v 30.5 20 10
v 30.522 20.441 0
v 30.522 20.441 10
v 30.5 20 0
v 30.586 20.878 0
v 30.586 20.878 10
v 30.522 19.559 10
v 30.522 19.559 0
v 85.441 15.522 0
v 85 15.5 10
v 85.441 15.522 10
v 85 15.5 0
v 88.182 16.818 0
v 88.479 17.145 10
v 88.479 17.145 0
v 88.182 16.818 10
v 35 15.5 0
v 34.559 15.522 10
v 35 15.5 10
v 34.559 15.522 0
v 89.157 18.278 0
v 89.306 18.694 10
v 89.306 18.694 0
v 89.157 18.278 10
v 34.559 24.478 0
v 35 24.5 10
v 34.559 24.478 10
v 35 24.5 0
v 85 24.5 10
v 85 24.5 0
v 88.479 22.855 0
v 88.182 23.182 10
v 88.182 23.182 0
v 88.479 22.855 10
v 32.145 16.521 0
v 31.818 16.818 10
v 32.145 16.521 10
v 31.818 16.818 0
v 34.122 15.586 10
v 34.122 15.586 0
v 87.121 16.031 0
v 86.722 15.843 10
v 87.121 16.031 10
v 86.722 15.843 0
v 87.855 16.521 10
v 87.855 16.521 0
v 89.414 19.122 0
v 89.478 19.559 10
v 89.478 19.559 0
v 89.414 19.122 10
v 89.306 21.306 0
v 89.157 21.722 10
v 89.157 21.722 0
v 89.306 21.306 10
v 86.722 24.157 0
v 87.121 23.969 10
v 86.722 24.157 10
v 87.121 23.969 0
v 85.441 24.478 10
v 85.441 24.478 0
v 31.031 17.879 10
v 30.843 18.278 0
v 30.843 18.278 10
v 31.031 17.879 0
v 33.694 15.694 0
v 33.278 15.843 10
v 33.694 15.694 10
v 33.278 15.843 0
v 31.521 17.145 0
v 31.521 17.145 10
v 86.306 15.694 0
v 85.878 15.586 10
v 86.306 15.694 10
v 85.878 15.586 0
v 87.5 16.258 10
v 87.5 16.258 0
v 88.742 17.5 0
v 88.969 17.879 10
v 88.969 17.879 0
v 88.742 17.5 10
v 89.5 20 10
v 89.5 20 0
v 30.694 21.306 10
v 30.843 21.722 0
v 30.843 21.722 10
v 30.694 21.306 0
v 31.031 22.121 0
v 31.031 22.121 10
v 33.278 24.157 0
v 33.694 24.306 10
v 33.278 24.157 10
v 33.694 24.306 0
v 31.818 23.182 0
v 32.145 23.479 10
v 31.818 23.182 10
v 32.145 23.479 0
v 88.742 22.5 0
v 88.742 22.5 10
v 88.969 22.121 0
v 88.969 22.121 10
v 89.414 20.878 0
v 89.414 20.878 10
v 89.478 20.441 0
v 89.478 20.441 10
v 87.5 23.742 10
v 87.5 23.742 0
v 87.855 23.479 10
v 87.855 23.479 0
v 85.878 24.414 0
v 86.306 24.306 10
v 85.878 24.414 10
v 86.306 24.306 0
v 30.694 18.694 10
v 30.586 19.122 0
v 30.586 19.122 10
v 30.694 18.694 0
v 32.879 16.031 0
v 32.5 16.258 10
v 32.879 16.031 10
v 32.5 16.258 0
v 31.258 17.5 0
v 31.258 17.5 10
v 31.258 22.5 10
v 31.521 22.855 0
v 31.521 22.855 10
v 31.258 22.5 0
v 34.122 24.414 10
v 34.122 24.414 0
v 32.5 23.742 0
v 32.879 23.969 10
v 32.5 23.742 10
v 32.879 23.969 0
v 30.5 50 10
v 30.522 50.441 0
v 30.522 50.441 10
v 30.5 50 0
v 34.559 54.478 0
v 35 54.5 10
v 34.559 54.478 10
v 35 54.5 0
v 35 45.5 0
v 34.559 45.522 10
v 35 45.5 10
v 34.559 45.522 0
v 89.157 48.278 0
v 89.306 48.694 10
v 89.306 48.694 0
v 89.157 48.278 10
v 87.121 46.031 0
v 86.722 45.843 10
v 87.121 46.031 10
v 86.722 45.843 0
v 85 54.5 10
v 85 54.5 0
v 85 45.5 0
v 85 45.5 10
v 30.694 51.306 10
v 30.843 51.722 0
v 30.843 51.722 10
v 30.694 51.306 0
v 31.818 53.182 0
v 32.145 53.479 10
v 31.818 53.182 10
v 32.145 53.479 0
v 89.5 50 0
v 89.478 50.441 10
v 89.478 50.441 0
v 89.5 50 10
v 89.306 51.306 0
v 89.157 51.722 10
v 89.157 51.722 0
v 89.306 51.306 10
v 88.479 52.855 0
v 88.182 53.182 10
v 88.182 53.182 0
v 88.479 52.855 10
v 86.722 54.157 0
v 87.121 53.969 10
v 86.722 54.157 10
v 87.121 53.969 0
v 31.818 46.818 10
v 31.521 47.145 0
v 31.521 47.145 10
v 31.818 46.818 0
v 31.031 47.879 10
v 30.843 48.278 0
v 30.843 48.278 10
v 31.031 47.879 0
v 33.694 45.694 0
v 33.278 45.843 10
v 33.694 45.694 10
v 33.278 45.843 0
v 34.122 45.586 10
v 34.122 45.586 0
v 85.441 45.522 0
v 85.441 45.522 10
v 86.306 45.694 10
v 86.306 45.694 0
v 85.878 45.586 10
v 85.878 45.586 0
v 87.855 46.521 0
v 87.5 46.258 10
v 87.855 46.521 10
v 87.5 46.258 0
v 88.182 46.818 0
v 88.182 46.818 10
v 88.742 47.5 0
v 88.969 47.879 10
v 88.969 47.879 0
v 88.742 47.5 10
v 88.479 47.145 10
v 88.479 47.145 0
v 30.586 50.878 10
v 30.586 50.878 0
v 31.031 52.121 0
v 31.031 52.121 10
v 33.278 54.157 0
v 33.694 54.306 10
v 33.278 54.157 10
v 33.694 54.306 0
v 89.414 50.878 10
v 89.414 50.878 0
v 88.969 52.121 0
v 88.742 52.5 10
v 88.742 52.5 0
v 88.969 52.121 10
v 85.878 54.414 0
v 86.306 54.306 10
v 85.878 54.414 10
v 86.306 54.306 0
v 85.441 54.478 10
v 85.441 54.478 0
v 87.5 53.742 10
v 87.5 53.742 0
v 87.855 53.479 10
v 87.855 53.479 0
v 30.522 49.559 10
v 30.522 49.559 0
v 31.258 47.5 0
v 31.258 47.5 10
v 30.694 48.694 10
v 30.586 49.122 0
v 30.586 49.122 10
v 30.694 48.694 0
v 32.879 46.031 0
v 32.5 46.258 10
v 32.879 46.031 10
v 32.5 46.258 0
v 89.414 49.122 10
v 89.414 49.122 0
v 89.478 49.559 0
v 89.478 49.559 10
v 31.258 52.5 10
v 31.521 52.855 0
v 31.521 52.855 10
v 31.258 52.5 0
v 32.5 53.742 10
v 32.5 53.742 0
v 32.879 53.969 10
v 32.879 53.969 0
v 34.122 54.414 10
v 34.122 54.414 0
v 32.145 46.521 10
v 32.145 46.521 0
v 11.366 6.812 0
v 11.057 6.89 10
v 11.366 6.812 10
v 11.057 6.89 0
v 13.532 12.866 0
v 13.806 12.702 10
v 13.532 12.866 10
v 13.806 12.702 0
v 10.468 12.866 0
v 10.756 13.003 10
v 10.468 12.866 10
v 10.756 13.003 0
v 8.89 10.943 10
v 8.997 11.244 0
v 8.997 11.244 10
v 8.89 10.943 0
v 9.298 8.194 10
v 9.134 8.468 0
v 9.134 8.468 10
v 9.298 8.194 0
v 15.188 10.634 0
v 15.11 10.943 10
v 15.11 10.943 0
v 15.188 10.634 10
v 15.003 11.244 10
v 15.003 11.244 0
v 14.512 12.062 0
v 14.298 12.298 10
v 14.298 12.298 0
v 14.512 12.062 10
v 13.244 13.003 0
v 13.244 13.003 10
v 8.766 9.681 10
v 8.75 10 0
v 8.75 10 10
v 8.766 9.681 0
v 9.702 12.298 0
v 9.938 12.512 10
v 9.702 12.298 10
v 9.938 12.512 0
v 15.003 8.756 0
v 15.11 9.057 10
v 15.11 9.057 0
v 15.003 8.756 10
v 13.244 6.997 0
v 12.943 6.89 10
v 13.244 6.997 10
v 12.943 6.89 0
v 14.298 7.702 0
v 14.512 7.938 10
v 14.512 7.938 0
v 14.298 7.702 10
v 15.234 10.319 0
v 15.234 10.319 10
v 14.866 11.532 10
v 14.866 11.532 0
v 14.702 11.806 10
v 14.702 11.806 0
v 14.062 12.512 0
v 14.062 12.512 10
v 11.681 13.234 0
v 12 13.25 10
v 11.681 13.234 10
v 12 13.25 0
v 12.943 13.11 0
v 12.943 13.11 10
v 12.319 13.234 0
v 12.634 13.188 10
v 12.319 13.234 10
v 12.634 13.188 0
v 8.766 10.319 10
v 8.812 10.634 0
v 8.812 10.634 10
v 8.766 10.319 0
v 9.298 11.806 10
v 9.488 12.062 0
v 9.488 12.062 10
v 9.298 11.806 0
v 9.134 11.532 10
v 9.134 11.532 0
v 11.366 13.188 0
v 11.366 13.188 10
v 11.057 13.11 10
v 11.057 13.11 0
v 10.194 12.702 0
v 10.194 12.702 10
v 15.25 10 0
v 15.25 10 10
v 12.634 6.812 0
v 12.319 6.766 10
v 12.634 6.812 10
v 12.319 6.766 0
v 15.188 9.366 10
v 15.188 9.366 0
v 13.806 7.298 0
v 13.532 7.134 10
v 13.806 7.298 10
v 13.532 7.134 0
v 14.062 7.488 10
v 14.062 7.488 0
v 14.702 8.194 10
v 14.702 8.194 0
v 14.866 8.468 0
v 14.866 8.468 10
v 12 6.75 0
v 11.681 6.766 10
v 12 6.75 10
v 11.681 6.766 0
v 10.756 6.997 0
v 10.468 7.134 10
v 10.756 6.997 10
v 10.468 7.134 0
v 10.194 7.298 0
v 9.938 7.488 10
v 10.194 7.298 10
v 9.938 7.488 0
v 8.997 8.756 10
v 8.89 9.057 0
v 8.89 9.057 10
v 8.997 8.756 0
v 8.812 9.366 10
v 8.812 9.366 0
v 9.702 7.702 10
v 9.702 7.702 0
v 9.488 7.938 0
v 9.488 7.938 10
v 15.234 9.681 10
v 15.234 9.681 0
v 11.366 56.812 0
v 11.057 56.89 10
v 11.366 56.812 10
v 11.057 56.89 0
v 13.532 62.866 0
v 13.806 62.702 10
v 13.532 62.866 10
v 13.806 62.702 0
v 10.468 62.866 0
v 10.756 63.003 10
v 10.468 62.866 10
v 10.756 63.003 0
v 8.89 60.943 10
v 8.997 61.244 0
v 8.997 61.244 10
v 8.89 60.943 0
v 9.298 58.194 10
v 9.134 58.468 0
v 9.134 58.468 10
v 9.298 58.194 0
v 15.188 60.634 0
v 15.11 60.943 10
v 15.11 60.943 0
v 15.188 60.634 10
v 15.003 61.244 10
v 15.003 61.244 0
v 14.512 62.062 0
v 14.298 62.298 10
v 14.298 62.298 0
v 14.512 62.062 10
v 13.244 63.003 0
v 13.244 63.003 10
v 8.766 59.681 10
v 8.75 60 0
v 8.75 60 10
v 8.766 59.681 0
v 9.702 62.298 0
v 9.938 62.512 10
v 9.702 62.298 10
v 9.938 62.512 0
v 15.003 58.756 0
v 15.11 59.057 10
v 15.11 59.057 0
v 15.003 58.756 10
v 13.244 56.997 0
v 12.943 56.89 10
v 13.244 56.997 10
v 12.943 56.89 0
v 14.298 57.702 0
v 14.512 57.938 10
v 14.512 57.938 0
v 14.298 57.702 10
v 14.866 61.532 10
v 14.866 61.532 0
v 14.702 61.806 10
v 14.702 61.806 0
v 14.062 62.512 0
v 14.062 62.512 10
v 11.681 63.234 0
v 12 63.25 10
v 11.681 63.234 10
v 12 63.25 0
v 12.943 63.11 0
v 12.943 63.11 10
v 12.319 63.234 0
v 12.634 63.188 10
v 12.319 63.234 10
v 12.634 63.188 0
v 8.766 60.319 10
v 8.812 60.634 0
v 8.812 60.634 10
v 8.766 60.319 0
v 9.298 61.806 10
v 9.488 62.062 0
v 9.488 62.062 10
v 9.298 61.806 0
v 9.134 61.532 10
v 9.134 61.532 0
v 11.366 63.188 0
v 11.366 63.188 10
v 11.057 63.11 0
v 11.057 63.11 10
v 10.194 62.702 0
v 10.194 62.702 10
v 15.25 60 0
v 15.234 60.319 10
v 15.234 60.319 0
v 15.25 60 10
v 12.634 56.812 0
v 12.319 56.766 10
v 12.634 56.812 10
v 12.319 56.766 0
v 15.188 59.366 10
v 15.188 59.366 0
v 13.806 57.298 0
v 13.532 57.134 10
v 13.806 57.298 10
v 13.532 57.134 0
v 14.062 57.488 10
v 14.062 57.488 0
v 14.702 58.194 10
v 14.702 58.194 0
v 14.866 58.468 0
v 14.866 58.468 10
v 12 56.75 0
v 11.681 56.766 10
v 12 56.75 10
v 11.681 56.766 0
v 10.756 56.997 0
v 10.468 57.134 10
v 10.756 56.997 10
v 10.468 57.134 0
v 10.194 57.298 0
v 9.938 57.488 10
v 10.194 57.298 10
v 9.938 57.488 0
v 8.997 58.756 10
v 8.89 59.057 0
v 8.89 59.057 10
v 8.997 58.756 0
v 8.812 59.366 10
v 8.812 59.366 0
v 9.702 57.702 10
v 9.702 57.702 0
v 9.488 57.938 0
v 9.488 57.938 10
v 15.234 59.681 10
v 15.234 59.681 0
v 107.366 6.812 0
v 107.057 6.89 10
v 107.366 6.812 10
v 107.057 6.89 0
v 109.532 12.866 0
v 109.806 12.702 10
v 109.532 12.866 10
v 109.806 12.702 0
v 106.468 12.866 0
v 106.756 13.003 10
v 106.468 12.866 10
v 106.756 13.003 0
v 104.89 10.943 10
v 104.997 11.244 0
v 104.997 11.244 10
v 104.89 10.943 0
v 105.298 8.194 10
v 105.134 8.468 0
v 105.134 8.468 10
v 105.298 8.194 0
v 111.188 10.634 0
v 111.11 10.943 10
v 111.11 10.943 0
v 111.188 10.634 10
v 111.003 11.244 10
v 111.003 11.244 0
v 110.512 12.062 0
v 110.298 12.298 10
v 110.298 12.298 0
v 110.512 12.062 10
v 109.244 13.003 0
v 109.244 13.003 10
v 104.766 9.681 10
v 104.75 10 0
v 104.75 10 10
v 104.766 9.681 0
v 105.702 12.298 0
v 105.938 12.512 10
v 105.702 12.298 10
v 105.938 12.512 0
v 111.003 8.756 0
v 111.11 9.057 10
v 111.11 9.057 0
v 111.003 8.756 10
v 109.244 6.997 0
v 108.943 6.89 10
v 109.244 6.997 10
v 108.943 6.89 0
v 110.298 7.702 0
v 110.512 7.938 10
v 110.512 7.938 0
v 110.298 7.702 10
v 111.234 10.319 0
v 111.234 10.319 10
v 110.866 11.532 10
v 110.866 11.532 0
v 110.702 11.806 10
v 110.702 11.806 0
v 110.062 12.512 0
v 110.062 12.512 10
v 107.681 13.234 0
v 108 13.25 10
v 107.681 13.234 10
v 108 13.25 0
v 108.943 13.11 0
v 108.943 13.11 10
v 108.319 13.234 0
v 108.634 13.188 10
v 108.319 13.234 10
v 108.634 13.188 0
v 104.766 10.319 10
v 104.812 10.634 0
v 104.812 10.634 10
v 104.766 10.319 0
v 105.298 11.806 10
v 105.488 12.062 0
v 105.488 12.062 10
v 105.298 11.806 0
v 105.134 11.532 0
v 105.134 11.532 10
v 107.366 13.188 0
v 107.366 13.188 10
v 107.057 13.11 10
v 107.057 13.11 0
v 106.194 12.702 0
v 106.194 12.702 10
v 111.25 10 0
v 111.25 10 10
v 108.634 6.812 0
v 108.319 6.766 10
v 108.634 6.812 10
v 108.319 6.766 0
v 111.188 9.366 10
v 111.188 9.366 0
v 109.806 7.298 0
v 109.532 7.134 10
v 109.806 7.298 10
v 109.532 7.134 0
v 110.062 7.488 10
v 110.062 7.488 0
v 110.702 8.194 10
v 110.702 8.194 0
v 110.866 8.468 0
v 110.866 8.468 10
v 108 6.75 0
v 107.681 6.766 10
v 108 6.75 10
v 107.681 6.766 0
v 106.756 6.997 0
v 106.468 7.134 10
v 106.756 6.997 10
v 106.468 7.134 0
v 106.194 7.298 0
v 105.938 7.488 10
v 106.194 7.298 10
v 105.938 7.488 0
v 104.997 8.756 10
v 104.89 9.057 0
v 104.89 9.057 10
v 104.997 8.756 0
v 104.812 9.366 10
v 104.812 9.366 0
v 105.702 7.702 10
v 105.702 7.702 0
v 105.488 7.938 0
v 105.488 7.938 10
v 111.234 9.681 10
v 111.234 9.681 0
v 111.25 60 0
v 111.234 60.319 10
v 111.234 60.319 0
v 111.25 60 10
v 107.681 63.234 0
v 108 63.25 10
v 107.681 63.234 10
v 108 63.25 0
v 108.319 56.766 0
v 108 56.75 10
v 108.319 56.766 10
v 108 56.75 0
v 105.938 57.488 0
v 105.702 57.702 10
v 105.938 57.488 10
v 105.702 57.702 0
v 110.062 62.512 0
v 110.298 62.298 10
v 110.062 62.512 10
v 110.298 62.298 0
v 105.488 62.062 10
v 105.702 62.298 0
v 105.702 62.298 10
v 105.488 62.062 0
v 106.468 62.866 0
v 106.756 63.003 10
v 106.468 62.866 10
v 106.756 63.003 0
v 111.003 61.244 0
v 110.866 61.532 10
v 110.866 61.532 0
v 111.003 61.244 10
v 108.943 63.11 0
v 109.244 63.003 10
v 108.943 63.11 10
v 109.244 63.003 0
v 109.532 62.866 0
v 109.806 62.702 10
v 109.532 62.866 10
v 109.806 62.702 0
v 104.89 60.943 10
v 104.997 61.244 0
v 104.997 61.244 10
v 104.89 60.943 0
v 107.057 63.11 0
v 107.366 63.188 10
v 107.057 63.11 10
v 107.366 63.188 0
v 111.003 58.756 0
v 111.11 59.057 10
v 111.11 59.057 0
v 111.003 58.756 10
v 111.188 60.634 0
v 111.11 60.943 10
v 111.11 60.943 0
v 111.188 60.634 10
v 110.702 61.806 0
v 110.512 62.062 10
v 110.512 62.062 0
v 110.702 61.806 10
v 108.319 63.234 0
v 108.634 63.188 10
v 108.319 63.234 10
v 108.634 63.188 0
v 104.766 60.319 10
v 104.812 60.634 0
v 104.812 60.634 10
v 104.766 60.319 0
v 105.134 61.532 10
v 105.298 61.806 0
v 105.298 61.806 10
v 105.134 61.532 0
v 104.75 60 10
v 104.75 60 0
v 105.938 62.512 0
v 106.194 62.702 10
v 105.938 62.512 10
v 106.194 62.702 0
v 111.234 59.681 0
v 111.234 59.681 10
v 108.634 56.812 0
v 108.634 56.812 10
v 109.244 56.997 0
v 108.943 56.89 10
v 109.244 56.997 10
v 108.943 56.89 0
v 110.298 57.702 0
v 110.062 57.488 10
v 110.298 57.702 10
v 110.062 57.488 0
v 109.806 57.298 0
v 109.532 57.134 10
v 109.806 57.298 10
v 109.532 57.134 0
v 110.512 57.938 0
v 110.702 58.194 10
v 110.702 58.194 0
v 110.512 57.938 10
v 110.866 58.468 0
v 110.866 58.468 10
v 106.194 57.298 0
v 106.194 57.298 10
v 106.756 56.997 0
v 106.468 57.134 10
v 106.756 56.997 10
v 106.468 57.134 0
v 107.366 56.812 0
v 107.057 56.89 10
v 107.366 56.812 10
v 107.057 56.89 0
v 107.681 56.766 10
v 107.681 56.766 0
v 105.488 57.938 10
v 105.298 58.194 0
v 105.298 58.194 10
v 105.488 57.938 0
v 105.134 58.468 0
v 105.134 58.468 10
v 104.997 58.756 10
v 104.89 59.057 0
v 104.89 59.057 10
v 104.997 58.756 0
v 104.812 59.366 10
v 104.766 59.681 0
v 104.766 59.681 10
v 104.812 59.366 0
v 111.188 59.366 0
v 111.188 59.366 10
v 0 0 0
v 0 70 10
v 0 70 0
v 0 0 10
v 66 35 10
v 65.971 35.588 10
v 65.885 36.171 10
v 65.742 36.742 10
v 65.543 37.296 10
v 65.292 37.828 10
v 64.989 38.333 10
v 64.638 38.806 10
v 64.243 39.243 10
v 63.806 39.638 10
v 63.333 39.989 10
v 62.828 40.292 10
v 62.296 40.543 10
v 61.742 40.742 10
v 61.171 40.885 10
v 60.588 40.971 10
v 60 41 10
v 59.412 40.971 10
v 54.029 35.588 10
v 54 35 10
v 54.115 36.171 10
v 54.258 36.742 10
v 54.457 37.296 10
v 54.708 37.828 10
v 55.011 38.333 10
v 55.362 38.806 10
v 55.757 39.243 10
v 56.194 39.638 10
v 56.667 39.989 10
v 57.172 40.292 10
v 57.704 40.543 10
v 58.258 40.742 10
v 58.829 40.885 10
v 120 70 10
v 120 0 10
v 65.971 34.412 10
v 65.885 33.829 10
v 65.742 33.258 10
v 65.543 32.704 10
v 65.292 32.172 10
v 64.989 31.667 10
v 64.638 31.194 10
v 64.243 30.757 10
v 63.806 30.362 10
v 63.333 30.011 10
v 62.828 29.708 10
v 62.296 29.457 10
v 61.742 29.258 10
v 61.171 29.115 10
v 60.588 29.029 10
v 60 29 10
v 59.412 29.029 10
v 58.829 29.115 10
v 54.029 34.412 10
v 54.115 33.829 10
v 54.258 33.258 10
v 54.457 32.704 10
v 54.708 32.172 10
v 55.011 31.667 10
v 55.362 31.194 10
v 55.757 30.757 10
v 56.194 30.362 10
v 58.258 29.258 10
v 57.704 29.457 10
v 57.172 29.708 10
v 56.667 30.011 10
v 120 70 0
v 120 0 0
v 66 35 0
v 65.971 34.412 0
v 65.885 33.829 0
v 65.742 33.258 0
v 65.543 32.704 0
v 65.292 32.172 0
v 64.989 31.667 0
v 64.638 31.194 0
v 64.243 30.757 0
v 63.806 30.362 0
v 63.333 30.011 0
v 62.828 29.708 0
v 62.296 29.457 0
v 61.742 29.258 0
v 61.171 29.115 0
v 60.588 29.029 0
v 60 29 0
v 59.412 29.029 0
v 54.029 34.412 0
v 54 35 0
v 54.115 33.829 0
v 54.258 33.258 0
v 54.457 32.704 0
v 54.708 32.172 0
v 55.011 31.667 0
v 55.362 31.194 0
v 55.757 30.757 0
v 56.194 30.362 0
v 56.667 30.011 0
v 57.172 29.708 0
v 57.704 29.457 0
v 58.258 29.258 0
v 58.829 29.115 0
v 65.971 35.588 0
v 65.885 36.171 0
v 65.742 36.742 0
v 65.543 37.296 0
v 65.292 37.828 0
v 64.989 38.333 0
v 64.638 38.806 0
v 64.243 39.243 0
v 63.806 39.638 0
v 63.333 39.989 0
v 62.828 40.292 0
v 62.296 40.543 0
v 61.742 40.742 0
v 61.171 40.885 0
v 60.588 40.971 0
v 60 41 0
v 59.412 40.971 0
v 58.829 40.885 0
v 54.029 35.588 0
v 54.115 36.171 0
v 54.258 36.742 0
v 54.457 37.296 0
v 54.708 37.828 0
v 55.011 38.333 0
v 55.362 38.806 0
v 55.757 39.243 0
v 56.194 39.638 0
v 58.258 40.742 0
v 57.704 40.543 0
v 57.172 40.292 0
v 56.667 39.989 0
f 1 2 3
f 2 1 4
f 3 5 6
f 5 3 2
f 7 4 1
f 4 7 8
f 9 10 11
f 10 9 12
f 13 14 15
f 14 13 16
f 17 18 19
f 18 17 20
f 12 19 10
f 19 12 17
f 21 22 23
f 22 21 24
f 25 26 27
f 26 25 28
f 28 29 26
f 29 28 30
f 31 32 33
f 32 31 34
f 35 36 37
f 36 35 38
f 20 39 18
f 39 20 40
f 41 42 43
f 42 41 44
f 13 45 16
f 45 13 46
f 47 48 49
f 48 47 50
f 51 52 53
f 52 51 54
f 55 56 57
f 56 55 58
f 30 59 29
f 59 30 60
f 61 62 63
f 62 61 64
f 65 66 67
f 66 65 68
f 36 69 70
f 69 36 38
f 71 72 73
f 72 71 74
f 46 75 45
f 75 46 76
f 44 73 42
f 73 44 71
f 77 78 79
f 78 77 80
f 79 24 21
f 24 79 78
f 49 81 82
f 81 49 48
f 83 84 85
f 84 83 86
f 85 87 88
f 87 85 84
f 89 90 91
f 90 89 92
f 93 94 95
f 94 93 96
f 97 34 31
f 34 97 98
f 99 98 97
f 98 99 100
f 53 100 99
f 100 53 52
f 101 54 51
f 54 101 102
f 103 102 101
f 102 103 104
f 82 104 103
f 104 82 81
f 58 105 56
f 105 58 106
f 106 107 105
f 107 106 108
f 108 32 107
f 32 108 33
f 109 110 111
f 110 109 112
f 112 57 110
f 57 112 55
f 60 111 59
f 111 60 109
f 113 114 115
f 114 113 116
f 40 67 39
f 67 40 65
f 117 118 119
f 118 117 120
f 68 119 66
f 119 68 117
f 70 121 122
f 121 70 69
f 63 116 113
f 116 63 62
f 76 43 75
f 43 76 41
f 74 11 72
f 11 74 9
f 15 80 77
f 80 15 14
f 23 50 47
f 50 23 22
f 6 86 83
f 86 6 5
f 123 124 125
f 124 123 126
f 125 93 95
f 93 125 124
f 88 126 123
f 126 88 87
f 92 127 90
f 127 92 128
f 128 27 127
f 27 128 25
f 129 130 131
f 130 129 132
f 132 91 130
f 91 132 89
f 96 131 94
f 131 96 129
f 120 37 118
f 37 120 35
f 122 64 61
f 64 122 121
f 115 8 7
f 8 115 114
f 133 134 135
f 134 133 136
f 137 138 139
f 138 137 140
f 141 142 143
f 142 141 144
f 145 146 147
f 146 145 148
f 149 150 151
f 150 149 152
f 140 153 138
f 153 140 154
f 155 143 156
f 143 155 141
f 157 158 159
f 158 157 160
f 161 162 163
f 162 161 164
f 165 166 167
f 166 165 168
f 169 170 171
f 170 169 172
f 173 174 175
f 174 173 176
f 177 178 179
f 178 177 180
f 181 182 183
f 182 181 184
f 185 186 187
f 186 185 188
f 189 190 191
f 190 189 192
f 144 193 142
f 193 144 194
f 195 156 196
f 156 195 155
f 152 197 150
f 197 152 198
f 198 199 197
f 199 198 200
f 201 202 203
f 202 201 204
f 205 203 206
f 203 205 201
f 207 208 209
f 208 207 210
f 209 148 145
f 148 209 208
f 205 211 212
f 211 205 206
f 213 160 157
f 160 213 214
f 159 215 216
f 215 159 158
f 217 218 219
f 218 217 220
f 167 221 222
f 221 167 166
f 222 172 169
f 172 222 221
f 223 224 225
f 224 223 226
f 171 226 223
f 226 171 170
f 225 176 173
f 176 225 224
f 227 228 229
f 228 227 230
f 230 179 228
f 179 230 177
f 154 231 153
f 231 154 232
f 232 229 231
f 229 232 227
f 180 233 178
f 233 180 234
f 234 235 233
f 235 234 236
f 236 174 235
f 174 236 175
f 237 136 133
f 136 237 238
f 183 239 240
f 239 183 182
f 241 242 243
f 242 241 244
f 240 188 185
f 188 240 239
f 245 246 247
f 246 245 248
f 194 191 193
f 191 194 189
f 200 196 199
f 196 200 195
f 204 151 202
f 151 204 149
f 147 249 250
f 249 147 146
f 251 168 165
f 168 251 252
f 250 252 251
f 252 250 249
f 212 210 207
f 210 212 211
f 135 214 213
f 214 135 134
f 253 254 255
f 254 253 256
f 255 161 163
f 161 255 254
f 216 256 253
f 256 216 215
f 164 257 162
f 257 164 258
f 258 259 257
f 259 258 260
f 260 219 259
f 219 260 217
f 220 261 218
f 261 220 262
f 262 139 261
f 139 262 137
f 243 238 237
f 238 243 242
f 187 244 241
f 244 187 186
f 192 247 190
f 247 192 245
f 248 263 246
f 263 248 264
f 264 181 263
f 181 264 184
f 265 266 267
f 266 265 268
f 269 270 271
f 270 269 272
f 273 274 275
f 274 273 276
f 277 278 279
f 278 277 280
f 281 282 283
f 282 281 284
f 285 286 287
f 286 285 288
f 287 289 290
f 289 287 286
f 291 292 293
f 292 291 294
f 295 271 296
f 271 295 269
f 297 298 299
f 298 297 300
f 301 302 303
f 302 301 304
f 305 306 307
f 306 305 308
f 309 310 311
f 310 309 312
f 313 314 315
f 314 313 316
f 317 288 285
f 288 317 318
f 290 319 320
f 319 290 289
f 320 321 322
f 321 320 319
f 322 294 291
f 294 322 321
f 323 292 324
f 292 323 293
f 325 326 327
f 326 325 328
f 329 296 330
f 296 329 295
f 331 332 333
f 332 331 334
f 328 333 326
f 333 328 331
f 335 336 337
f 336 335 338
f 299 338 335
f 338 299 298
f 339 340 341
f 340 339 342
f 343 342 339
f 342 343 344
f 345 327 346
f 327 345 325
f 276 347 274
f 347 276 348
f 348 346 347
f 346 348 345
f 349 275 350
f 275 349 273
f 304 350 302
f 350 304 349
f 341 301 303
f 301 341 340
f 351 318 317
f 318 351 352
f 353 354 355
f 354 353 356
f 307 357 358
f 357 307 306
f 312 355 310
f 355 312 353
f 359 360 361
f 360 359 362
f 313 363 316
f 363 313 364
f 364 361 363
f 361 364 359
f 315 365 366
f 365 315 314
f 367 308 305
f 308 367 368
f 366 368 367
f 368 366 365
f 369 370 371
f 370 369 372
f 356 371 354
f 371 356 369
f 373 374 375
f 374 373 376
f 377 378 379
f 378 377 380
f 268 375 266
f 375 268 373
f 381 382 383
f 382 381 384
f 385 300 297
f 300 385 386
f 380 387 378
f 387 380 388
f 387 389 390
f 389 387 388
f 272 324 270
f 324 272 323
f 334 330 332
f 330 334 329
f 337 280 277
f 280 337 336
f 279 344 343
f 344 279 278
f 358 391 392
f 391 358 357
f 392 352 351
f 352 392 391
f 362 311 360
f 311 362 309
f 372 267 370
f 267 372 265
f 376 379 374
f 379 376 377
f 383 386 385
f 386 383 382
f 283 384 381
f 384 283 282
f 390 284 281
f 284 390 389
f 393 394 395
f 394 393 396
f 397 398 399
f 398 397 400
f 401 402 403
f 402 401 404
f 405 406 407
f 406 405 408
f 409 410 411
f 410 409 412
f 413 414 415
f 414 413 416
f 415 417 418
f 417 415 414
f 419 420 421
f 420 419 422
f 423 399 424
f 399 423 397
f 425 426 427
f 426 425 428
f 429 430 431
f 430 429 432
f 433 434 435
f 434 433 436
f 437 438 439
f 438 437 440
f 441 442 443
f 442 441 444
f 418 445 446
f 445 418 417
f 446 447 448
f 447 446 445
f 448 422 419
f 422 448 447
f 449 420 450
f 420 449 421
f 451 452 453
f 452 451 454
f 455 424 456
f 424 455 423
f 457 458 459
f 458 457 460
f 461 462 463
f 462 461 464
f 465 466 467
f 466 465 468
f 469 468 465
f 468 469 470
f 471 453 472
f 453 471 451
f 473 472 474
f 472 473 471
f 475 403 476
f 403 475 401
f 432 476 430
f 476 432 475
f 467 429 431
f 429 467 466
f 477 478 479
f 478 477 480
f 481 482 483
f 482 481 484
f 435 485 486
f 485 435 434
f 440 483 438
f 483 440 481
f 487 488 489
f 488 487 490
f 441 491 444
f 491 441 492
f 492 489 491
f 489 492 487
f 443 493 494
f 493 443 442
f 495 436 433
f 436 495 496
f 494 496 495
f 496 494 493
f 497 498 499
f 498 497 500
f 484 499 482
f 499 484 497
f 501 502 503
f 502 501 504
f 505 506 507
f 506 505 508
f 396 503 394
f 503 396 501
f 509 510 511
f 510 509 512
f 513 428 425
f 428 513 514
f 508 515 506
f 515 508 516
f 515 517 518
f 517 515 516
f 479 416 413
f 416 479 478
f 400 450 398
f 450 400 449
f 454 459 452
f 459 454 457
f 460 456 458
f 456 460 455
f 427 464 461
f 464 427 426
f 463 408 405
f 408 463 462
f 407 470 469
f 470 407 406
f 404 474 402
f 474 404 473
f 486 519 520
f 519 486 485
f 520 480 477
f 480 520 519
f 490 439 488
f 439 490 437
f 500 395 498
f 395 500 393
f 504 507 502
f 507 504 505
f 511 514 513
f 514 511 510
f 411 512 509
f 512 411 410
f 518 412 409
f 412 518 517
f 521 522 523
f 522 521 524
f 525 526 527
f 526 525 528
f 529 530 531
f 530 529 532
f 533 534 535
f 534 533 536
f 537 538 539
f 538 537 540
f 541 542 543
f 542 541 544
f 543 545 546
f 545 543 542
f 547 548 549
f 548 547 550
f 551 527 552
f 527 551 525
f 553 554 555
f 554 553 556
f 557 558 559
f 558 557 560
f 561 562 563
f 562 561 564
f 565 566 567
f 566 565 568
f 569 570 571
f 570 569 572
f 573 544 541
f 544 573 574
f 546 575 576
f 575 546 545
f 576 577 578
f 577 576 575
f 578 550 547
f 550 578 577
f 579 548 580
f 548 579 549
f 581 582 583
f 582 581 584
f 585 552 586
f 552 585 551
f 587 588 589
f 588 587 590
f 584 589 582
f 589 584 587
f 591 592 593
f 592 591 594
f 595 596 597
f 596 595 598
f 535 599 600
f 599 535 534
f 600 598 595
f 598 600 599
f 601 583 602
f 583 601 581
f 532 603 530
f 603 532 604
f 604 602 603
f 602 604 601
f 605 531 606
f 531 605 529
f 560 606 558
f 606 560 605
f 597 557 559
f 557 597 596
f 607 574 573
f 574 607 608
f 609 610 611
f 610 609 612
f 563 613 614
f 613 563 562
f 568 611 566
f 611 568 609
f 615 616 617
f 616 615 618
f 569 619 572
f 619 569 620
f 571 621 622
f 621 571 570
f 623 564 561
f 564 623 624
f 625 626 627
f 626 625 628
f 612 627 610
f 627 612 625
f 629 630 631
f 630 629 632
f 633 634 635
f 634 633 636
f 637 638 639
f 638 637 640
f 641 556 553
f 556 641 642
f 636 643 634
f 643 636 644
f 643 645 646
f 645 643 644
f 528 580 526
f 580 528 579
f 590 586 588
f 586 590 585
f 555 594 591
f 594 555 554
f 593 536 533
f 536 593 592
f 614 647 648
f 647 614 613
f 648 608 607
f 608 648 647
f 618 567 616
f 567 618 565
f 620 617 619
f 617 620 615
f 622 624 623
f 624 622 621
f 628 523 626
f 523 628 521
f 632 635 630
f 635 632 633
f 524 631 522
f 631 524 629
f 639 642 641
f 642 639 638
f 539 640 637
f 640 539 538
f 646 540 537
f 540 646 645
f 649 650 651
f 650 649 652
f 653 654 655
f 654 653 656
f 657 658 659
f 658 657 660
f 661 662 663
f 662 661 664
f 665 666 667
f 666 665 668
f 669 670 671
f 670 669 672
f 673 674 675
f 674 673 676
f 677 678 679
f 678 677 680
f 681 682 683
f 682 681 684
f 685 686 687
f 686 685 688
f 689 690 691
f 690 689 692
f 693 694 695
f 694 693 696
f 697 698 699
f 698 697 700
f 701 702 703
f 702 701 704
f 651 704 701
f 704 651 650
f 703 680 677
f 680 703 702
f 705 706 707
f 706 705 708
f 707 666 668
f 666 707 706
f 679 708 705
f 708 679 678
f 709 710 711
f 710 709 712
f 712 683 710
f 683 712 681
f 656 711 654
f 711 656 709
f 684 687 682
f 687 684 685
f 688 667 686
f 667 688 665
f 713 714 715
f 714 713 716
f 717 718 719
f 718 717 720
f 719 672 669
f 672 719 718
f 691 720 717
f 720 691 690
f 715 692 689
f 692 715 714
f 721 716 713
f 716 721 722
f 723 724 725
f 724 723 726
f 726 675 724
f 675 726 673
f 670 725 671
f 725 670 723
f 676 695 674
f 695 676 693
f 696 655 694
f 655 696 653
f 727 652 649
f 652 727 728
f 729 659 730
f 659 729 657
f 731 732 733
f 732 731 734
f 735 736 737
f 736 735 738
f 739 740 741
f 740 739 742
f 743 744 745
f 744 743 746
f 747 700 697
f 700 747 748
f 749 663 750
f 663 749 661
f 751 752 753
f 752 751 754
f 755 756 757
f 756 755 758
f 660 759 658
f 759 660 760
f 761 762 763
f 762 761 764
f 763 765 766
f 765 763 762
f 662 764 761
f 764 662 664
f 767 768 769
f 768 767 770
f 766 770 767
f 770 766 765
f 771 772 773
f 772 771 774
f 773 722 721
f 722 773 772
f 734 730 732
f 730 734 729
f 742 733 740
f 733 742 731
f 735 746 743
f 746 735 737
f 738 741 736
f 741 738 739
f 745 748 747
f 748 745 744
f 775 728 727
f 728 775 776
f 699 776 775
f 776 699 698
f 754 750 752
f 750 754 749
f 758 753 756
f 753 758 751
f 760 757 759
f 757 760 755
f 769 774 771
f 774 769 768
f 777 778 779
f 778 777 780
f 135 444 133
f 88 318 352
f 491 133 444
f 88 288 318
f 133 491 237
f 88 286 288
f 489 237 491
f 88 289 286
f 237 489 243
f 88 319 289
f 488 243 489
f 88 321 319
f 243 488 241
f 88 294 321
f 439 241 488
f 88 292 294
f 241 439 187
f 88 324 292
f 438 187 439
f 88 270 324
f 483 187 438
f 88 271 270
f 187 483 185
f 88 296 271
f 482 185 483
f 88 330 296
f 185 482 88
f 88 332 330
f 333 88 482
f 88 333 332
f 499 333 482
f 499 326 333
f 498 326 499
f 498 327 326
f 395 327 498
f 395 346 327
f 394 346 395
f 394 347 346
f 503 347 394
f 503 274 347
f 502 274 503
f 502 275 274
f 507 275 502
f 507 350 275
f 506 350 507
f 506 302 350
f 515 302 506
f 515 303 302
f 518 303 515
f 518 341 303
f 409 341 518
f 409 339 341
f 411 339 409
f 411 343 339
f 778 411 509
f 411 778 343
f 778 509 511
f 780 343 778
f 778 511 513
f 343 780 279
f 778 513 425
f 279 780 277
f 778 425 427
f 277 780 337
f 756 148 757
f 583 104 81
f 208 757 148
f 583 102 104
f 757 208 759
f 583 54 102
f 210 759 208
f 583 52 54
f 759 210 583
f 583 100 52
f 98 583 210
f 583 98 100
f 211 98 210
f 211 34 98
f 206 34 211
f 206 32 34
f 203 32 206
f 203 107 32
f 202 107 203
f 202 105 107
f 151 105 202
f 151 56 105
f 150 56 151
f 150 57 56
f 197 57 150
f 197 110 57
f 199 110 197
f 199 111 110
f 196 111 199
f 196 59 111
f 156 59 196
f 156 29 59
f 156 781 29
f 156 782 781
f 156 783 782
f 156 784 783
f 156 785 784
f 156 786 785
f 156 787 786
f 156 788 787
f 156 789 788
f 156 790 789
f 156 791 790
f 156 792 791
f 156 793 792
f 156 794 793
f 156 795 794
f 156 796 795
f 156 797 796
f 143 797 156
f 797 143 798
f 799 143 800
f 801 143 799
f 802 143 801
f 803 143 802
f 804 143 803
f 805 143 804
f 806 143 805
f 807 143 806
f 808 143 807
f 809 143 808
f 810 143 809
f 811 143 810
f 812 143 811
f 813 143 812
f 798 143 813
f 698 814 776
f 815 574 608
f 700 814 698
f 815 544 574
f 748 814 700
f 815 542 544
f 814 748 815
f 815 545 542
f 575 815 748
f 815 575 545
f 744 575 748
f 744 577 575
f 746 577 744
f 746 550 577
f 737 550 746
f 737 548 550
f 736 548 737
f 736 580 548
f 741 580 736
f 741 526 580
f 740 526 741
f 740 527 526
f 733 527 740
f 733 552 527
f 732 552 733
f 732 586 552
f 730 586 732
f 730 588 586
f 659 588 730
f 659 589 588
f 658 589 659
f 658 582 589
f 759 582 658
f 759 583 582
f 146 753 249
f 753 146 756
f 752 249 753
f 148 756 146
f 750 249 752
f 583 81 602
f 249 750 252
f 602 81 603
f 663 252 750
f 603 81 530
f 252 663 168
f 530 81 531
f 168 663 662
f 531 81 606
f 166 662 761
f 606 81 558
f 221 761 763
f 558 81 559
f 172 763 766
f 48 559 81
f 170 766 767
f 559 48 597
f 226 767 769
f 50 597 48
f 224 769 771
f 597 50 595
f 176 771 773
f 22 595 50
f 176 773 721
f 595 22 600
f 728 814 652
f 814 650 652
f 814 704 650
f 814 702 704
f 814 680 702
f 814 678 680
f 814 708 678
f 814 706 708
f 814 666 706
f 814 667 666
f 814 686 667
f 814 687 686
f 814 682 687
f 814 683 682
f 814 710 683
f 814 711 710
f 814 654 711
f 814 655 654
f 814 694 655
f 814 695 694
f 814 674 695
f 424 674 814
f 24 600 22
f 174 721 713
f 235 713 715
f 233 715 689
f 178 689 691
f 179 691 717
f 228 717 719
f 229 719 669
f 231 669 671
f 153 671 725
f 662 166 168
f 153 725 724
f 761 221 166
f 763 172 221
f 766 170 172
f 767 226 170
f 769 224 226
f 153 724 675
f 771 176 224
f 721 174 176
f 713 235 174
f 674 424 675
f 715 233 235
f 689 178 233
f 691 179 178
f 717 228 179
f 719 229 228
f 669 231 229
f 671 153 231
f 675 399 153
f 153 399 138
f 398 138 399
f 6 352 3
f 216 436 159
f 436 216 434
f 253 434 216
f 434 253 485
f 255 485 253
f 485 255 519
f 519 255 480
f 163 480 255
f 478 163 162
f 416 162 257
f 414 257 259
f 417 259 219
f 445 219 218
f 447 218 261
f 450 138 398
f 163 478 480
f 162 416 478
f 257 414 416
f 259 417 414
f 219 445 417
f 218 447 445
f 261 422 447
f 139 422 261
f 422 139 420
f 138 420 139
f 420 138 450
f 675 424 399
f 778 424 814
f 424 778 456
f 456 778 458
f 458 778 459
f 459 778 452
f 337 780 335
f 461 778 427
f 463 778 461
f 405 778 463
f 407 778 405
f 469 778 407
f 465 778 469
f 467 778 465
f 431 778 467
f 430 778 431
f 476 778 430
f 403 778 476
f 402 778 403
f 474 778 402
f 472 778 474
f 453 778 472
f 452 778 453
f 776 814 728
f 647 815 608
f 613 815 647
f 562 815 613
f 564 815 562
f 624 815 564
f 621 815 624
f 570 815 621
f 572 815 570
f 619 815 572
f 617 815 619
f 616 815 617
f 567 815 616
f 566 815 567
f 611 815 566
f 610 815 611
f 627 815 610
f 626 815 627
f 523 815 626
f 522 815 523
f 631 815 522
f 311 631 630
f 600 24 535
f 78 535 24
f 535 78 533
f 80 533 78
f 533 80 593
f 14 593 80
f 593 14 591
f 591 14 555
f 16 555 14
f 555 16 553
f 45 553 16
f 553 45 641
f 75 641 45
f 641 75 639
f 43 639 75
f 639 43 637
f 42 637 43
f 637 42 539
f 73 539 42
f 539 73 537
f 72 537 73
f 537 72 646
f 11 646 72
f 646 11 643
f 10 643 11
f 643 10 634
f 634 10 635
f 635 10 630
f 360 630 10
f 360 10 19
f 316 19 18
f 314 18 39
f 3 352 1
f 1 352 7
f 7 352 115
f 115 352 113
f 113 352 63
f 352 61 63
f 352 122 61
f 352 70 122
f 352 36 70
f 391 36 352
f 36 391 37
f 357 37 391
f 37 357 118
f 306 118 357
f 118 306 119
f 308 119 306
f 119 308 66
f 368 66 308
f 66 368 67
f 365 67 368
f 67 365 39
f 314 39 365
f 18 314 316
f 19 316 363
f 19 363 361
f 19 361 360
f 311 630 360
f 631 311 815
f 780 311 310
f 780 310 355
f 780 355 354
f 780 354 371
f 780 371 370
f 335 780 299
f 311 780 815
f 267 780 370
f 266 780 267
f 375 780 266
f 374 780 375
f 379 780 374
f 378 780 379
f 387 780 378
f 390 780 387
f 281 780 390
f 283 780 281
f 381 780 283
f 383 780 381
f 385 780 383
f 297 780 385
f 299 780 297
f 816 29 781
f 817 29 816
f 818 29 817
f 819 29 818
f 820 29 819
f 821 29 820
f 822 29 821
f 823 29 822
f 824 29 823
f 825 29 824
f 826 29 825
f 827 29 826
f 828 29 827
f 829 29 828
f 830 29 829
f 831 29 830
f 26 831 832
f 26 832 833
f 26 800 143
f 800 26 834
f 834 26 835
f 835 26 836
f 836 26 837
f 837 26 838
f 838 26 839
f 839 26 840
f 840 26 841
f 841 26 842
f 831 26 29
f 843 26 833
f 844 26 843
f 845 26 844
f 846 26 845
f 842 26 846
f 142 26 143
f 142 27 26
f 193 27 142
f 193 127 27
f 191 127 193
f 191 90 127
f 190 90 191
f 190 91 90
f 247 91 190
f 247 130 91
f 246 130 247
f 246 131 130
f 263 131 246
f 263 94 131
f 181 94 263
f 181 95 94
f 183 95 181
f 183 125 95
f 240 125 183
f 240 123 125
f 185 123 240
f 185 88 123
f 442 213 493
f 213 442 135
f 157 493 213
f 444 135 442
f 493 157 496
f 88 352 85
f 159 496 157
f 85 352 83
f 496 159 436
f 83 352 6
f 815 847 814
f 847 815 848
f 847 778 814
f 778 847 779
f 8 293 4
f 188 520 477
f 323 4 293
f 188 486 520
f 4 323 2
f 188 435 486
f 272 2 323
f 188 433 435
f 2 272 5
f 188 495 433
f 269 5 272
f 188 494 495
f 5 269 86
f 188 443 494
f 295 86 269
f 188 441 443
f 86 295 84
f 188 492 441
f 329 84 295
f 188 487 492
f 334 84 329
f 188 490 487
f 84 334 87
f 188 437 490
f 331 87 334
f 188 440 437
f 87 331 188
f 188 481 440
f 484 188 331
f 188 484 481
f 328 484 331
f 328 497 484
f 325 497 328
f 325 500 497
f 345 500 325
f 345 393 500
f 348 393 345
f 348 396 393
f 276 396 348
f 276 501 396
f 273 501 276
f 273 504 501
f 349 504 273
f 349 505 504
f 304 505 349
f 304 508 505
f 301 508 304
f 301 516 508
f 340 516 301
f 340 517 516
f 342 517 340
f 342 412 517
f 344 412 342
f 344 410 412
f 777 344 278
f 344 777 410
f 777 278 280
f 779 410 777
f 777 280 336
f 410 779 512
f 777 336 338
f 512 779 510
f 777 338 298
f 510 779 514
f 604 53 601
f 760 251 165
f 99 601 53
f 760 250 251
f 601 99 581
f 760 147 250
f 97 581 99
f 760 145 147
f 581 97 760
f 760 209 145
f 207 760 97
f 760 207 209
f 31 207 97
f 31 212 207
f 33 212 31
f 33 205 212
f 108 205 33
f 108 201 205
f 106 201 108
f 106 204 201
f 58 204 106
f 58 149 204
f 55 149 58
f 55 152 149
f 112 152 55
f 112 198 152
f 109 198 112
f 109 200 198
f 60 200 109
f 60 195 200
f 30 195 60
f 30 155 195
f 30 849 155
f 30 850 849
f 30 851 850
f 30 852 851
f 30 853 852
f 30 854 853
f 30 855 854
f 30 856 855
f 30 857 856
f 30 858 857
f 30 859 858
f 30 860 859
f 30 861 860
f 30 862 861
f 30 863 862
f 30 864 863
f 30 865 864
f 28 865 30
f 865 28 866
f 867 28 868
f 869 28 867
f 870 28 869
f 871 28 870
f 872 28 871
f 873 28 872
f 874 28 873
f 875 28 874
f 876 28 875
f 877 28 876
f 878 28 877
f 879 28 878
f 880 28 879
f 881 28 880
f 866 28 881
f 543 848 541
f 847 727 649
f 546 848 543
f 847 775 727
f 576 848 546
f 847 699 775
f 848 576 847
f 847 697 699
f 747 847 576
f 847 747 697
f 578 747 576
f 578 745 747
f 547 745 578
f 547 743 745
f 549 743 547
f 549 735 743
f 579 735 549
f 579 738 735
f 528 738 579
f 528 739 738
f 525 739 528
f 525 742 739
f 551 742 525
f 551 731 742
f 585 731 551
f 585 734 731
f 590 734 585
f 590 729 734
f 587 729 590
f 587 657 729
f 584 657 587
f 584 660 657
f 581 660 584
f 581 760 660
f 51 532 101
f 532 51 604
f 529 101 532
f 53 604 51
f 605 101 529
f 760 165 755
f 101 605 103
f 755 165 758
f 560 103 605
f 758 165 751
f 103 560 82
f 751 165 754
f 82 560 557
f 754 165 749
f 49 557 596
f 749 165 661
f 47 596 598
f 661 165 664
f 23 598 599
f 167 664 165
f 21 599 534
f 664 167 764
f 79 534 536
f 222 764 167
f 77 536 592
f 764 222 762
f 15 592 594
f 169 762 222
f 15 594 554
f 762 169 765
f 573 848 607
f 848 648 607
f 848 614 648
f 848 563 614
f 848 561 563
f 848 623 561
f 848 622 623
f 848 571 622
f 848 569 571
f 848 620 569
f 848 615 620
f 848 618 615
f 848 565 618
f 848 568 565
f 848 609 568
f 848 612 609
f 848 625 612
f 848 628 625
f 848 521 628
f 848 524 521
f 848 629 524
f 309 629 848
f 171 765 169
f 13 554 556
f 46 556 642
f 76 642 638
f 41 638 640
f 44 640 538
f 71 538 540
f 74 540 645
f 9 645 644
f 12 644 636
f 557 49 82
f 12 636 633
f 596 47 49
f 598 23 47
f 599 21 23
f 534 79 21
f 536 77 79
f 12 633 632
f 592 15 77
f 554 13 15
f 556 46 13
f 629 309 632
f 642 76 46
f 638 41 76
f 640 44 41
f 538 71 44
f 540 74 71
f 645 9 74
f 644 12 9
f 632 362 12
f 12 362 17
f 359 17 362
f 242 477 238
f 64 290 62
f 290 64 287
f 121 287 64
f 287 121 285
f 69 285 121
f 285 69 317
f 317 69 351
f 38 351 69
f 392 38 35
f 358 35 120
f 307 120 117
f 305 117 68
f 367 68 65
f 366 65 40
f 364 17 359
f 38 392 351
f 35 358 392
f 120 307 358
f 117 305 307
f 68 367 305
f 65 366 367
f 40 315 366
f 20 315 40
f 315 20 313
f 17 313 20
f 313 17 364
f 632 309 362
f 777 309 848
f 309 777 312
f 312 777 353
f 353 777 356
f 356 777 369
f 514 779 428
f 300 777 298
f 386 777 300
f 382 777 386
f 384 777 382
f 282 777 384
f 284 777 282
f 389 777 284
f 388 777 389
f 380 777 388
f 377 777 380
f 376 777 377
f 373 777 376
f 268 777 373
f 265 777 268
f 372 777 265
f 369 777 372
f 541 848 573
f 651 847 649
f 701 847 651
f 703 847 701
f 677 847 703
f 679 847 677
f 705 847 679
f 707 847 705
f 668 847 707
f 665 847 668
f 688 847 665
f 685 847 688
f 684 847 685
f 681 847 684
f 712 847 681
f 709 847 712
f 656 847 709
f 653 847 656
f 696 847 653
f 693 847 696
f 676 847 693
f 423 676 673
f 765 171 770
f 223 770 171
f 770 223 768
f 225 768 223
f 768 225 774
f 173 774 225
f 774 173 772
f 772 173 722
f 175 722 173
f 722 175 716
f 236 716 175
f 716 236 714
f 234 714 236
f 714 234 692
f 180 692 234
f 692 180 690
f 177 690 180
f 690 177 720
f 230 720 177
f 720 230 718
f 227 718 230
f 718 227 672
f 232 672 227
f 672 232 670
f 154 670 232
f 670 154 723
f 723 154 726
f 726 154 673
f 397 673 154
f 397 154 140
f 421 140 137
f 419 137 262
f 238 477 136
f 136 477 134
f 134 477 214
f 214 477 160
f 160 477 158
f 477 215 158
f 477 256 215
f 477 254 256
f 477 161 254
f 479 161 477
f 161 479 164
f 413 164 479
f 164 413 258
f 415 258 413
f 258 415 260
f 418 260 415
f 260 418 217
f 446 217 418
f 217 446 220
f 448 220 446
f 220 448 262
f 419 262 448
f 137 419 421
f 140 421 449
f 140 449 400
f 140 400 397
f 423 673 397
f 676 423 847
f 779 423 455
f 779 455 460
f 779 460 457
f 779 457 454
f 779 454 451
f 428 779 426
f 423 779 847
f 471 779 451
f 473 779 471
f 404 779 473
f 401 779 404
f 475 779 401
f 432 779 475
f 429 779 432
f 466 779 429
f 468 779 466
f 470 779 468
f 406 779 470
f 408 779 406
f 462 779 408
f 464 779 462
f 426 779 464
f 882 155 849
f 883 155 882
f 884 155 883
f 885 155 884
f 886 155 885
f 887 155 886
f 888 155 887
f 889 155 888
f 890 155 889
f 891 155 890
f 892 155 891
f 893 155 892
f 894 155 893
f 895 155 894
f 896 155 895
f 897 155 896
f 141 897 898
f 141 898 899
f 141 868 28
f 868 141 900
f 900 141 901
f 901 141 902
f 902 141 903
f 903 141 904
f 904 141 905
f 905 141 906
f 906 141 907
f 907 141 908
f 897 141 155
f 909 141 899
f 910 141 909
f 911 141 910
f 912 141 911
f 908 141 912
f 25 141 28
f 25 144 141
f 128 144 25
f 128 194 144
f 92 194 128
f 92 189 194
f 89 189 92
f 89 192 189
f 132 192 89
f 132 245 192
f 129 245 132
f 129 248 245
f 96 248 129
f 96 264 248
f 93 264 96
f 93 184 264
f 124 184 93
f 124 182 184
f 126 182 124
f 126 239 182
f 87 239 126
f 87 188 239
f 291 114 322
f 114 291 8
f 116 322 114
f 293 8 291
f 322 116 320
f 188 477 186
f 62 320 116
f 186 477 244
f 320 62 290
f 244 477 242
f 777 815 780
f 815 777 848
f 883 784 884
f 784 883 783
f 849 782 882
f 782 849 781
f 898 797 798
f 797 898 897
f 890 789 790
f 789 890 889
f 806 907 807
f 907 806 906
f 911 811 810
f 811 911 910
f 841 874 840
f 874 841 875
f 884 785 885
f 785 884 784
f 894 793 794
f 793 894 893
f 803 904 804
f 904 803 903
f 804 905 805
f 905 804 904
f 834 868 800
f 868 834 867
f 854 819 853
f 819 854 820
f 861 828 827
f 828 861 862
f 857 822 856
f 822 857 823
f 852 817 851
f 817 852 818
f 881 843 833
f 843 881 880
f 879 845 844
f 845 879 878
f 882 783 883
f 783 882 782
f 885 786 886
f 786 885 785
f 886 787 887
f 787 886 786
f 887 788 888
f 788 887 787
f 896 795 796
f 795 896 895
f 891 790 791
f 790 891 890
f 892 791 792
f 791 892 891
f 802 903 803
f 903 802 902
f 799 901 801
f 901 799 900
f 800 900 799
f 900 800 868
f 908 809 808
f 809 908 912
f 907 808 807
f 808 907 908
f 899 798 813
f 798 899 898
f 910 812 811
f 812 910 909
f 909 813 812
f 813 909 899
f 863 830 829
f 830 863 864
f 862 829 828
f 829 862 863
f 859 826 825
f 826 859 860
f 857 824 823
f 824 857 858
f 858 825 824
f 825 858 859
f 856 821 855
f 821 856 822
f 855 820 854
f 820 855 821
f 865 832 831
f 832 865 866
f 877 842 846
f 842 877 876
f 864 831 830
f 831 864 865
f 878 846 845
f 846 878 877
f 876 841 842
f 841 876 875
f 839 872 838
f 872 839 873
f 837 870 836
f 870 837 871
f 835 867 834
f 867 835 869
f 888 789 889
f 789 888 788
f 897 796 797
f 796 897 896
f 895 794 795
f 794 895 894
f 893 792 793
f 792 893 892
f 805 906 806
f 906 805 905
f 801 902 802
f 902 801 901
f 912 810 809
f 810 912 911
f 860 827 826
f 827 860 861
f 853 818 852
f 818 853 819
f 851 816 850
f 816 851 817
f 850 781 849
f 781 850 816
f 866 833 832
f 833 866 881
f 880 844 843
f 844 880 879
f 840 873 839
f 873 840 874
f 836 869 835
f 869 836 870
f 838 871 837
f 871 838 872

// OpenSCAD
// Original MechIntel educational model. CC0-1.0. Units: mm.
// Not a standardized or load-rated component.
$fn=96;
length=120; width=70; thickness=10; slot_width=9; travel=50;
$fn=64;
difference(){
 cube([length,width,thickness]);
 for(y=[20,50]) hull(){
  translate([35,y,-1]) cylinder(d=slot_width,h=thickness+2);
  translate([35+travel,y,-1]) cylinder(d=slot_width,h=thickness+2);
 }
 for(x=[12,length-12]) for(y=[10,width-10]) translate([x,y,-1]) cylinder(d=6.5,h=thickness+2);
 translate([length/2,width/2,-1]) cylinder(d=12,h=thickness+2);
}
